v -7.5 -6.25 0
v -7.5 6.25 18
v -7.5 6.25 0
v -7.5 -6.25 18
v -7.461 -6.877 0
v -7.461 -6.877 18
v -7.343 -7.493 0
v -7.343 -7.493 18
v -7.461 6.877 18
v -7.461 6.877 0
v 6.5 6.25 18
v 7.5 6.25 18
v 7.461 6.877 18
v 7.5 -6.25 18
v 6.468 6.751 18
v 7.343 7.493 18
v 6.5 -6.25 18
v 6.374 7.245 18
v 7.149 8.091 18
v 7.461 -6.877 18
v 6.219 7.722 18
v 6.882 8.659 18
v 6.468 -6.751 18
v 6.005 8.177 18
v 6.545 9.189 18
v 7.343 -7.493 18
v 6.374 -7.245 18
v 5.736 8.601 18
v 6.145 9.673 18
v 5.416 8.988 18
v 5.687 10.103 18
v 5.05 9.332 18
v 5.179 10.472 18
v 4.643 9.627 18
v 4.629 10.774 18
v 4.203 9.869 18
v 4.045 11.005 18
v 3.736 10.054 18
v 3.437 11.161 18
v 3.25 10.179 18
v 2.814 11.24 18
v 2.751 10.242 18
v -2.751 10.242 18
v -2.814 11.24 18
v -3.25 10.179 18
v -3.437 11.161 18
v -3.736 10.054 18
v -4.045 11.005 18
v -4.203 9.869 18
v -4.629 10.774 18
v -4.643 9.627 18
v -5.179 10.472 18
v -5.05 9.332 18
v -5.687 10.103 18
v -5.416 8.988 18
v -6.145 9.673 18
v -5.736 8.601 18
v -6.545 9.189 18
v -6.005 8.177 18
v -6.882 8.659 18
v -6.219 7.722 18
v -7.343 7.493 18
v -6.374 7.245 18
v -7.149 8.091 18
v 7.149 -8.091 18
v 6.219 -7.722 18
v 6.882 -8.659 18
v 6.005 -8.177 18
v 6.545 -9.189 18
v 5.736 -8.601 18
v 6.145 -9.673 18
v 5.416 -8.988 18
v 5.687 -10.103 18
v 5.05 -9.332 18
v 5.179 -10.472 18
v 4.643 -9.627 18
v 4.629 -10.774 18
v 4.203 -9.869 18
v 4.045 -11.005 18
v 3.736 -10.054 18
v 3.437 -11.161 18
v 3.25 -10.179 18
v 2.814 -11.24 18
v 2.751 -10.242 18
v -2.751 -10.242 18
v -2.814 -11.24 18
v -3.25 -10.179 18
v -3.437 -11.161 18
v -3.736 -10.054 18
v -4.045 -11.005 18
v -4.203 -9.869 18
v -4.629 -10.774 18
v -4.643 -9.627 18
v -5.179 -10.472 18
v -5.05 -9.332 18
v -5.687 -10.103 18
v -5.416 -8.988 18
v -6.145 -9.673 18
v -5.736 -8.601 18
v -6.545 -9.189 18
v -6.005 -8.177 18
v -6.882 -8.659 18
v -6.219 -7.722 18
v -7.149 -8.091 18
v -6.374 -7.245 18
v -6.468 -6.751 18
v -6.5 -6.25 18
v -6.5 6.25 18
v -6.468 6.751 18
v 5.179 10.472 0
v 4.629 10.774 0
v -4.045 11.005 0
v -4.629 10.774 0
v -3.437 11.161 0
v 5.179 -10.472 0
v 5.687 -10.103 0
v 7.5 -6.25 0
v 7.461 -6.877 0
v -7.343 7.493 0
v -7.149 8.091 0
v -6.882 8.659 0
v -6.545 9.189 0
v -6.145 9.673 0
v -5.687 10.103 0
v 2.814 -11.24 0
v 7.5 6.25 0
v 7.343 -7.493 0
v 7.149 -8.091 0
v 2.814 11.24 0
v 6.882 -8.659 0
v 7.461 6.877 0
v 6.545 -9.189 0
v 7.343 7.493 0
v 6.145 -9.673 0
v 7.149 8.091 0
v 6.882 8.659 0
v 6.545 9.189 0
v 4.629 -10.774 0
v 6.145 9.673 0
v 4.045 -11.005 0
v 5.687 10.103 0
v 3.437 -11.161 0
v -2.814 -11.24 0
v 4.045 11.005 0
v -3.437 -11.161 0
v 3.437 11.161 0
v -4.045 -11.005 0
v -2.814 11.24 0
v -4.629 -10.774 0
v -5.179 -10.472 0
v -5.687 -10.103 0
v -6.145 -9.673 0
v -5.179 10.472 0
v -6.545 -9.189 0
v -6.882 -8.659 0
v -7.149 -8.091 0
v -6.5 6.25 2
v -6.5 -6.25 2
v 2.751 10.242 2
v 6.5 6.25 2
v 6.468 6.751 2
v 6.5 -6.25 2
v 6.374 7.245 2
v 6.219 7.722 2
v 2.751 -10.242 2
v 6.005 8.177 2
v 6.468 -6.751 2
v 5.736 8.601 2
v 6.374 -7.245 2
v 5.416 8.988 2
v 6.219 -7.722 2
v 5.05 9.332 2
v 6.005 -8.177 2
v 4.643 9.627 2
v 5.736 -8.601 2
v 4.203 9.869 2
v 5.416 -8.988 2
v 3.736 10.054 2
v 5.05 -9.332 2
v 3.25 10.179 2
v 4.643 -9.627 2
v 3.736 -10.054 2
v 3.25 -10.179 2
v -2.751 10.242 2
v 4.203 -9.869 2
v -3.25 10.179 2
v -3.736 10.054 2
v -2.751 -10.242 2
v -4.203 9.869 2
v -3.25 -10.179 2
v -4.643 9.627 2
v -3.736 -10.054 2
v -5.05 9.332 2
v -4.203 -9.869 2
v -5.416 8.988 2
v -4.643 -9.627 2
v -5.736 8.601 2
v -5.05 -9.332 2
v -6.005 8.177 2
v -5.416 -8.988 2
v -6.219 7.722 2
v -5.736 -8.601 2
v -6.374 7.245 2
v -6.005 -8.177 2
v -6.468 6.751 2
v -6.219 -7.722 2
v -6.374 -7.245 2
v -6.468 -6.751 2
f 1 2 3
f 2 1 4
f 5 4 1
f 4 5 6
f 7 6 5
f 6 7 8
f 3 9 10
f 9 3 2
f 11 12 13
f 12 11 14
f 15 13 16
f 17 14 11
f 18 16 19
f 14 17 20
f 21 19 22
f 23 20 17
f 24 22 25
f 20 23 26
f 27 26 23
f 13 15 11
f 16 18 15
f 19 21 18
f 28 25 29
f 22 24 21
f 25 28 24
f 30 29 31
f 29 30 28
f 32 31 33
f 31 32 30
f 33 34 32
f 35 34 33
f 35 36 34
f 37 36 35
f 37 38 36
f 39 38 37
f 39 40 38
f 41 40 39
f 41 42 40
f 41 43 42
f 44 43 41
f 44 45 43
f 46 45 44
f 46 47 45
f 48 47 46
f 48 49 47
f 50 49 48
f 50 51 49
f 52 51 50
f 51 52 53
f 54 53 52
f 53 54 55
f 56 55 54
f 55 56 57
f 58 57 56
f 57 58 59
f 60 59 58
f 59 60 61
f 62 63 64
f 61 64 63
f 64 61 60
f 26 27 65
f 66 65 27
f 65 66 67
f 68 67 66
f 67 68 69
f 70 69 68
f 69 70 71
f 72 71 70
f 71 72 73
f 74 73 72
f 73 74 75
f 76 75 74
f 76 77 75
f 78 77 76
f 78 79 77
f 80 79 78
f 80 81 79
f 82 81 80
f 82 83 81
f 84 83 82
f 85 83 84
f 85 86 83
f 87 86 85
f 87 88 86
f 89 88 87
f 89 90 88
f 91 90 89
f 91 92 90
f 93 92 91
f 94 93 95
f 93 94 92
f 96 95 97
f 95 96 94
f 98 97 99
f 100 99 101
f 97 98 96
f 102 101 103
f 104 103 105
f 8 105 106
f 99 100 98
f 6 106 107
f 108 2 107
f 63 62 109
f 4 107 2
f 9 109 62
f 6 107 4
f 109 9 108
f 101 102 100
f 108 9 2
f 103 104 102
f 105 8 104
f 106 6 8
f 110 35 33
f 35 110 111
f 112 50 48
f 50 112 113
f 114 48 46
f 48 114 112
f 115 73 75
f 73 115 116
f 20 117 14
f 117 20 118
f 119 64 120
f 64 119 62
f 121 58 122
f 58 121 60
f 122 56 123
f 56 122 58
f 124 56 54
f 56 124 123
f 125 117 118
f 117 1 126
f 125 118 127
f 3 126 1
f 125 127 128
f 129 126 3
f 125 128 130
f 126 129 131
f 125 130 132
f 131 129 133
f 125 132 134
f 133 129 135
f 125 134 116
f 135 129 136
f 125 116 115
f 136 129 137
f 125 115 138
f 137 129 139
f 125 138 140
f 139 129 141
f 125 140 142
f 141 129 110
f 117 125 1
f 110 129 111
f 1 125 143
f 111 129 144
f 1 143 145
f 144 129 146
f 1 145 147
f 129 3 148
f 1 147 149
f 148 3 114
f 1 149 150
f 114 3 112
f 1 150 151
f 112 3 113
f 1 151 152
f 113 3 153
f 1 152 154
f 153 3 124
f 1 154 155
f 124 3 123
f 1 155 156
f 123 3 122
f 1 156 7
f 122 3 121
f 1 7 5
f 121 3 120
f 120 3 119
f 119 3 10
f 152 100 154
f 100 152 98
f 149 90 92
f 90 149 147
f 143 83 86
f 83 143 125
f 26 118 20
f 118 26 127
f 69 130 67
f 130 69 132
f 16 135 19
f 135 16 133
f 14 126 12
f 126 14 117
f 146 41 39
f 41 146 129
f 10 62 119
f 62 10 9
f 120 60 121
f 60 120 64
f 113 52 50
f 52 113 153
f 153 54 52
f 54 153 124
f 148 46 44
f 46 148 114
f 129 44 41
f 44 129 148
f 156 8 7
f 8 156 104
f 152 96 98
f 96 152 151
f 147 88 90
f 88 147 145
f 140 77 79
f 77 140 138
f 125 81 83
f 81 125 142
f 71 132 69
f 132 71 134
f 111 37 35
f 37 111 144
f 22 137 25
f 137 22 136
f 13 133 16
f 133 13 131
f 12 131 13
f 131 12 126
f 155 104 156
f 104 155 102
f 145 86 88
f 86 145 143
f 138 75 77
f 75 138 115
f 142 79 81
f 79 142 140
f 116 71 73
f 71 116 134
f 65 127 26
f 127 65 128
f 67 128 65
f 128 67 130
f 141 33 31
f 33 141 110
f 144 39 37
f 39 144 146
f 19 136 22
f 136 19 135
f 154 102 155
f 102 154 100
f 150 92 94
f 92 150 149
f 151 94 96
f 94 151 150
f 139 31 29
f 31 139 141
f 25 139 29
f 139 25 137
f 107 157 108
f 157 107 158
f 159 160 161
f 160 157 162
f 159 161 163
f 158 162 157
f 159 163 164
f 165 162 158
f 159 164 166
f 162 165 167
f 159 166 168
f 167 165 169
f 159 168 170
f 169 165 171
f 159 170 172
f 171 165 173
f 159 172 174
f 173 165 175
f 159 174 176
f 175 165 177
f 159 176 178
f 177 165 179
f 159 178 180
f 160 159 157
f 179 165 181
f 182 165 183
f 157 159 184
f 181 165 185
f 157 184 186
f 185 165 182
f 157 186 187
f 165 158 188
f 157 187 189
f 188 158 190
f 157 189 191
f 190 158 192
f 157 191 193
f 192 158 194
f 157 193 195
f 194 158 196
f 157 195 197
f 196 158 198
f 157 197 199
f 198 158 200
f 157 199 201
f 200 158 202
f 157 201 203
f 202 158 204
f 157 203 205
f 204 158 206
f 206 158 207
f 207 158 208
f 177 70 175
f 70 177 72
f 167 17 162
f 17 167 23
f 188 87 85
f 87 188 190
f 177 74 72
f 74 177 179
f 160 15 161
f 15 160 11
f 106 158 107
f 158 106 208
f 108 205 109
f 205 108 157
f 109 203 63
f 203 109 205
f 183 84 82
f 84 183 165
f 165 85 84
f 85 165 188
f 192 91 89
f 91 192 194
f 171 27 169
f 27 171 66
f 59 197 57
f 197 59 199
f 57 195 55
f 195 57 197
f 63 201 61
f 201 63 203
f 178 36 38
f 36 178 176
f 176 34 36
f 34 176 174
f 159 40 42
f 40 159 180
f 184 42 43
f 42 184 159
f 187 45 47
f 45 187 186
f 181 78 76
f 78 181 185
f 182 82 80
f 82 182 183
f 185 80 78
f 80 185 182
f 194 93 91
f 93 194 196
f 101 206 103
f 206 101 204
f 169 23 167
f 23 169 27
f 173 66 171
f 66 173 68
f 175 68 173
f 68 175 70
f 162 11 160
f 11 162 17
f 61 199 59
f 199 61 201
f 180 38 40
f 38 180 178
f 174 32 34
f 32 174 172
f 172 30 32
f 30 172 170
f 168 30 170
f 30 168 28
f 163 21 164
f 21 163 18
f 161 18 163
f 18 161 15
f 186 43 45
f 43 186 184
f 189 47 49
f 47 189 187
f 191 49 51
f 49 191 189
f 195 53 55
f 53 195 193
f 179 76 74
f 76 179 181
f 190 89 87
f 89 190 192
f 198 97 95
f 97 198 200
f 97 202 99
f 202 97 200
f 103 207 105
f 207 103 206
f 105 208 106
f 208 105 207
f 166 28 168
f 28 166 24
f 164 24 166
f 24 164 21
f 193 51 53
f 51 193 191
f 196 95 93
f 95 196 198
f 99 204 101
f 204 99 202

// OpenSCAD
$fn = 50;


difference() {
	union() {
		hull() {
			translate(v = [-2.5000000000, 6.2500000000, 0]) {
				cylinder(h = 18, r = 5);
			}
			translate(v = [2.5000000000, 6.2500000000, 0]) {
				cylinder(h = 18, r = 5);
			}
			translate(v = [-2.5000000000, -6.2500000000, 0]) {
				cylinder(h = 18, r = 5);
			}
			translate(v = [2.5000000000, -6.2500000000, 0]) {
				cylinder(h = 18, r = 5);
			}
		}
	}
	union() {
		translate(v = [0, 0, 2]) {
			hull() {
				translate(v = [-2.5000000000, 6.2500000000, 0]) {
					cylinder(h = 16, r = 4);
				}
				translate(v = [2.5000000000, 6.2500000000, 0]) {
					cylinder(h = 16, r = 4);
				}
				translate(v = [-2.5000000000, -6.2500000000, 0]) {
					cylinder(h = 16, r = 4);
				}
				translate(v = [2.5000000000, -6.2500000000, 0]) {
					cylinder(h = 16, r = 4);
				}
			}
		}
	}
}
